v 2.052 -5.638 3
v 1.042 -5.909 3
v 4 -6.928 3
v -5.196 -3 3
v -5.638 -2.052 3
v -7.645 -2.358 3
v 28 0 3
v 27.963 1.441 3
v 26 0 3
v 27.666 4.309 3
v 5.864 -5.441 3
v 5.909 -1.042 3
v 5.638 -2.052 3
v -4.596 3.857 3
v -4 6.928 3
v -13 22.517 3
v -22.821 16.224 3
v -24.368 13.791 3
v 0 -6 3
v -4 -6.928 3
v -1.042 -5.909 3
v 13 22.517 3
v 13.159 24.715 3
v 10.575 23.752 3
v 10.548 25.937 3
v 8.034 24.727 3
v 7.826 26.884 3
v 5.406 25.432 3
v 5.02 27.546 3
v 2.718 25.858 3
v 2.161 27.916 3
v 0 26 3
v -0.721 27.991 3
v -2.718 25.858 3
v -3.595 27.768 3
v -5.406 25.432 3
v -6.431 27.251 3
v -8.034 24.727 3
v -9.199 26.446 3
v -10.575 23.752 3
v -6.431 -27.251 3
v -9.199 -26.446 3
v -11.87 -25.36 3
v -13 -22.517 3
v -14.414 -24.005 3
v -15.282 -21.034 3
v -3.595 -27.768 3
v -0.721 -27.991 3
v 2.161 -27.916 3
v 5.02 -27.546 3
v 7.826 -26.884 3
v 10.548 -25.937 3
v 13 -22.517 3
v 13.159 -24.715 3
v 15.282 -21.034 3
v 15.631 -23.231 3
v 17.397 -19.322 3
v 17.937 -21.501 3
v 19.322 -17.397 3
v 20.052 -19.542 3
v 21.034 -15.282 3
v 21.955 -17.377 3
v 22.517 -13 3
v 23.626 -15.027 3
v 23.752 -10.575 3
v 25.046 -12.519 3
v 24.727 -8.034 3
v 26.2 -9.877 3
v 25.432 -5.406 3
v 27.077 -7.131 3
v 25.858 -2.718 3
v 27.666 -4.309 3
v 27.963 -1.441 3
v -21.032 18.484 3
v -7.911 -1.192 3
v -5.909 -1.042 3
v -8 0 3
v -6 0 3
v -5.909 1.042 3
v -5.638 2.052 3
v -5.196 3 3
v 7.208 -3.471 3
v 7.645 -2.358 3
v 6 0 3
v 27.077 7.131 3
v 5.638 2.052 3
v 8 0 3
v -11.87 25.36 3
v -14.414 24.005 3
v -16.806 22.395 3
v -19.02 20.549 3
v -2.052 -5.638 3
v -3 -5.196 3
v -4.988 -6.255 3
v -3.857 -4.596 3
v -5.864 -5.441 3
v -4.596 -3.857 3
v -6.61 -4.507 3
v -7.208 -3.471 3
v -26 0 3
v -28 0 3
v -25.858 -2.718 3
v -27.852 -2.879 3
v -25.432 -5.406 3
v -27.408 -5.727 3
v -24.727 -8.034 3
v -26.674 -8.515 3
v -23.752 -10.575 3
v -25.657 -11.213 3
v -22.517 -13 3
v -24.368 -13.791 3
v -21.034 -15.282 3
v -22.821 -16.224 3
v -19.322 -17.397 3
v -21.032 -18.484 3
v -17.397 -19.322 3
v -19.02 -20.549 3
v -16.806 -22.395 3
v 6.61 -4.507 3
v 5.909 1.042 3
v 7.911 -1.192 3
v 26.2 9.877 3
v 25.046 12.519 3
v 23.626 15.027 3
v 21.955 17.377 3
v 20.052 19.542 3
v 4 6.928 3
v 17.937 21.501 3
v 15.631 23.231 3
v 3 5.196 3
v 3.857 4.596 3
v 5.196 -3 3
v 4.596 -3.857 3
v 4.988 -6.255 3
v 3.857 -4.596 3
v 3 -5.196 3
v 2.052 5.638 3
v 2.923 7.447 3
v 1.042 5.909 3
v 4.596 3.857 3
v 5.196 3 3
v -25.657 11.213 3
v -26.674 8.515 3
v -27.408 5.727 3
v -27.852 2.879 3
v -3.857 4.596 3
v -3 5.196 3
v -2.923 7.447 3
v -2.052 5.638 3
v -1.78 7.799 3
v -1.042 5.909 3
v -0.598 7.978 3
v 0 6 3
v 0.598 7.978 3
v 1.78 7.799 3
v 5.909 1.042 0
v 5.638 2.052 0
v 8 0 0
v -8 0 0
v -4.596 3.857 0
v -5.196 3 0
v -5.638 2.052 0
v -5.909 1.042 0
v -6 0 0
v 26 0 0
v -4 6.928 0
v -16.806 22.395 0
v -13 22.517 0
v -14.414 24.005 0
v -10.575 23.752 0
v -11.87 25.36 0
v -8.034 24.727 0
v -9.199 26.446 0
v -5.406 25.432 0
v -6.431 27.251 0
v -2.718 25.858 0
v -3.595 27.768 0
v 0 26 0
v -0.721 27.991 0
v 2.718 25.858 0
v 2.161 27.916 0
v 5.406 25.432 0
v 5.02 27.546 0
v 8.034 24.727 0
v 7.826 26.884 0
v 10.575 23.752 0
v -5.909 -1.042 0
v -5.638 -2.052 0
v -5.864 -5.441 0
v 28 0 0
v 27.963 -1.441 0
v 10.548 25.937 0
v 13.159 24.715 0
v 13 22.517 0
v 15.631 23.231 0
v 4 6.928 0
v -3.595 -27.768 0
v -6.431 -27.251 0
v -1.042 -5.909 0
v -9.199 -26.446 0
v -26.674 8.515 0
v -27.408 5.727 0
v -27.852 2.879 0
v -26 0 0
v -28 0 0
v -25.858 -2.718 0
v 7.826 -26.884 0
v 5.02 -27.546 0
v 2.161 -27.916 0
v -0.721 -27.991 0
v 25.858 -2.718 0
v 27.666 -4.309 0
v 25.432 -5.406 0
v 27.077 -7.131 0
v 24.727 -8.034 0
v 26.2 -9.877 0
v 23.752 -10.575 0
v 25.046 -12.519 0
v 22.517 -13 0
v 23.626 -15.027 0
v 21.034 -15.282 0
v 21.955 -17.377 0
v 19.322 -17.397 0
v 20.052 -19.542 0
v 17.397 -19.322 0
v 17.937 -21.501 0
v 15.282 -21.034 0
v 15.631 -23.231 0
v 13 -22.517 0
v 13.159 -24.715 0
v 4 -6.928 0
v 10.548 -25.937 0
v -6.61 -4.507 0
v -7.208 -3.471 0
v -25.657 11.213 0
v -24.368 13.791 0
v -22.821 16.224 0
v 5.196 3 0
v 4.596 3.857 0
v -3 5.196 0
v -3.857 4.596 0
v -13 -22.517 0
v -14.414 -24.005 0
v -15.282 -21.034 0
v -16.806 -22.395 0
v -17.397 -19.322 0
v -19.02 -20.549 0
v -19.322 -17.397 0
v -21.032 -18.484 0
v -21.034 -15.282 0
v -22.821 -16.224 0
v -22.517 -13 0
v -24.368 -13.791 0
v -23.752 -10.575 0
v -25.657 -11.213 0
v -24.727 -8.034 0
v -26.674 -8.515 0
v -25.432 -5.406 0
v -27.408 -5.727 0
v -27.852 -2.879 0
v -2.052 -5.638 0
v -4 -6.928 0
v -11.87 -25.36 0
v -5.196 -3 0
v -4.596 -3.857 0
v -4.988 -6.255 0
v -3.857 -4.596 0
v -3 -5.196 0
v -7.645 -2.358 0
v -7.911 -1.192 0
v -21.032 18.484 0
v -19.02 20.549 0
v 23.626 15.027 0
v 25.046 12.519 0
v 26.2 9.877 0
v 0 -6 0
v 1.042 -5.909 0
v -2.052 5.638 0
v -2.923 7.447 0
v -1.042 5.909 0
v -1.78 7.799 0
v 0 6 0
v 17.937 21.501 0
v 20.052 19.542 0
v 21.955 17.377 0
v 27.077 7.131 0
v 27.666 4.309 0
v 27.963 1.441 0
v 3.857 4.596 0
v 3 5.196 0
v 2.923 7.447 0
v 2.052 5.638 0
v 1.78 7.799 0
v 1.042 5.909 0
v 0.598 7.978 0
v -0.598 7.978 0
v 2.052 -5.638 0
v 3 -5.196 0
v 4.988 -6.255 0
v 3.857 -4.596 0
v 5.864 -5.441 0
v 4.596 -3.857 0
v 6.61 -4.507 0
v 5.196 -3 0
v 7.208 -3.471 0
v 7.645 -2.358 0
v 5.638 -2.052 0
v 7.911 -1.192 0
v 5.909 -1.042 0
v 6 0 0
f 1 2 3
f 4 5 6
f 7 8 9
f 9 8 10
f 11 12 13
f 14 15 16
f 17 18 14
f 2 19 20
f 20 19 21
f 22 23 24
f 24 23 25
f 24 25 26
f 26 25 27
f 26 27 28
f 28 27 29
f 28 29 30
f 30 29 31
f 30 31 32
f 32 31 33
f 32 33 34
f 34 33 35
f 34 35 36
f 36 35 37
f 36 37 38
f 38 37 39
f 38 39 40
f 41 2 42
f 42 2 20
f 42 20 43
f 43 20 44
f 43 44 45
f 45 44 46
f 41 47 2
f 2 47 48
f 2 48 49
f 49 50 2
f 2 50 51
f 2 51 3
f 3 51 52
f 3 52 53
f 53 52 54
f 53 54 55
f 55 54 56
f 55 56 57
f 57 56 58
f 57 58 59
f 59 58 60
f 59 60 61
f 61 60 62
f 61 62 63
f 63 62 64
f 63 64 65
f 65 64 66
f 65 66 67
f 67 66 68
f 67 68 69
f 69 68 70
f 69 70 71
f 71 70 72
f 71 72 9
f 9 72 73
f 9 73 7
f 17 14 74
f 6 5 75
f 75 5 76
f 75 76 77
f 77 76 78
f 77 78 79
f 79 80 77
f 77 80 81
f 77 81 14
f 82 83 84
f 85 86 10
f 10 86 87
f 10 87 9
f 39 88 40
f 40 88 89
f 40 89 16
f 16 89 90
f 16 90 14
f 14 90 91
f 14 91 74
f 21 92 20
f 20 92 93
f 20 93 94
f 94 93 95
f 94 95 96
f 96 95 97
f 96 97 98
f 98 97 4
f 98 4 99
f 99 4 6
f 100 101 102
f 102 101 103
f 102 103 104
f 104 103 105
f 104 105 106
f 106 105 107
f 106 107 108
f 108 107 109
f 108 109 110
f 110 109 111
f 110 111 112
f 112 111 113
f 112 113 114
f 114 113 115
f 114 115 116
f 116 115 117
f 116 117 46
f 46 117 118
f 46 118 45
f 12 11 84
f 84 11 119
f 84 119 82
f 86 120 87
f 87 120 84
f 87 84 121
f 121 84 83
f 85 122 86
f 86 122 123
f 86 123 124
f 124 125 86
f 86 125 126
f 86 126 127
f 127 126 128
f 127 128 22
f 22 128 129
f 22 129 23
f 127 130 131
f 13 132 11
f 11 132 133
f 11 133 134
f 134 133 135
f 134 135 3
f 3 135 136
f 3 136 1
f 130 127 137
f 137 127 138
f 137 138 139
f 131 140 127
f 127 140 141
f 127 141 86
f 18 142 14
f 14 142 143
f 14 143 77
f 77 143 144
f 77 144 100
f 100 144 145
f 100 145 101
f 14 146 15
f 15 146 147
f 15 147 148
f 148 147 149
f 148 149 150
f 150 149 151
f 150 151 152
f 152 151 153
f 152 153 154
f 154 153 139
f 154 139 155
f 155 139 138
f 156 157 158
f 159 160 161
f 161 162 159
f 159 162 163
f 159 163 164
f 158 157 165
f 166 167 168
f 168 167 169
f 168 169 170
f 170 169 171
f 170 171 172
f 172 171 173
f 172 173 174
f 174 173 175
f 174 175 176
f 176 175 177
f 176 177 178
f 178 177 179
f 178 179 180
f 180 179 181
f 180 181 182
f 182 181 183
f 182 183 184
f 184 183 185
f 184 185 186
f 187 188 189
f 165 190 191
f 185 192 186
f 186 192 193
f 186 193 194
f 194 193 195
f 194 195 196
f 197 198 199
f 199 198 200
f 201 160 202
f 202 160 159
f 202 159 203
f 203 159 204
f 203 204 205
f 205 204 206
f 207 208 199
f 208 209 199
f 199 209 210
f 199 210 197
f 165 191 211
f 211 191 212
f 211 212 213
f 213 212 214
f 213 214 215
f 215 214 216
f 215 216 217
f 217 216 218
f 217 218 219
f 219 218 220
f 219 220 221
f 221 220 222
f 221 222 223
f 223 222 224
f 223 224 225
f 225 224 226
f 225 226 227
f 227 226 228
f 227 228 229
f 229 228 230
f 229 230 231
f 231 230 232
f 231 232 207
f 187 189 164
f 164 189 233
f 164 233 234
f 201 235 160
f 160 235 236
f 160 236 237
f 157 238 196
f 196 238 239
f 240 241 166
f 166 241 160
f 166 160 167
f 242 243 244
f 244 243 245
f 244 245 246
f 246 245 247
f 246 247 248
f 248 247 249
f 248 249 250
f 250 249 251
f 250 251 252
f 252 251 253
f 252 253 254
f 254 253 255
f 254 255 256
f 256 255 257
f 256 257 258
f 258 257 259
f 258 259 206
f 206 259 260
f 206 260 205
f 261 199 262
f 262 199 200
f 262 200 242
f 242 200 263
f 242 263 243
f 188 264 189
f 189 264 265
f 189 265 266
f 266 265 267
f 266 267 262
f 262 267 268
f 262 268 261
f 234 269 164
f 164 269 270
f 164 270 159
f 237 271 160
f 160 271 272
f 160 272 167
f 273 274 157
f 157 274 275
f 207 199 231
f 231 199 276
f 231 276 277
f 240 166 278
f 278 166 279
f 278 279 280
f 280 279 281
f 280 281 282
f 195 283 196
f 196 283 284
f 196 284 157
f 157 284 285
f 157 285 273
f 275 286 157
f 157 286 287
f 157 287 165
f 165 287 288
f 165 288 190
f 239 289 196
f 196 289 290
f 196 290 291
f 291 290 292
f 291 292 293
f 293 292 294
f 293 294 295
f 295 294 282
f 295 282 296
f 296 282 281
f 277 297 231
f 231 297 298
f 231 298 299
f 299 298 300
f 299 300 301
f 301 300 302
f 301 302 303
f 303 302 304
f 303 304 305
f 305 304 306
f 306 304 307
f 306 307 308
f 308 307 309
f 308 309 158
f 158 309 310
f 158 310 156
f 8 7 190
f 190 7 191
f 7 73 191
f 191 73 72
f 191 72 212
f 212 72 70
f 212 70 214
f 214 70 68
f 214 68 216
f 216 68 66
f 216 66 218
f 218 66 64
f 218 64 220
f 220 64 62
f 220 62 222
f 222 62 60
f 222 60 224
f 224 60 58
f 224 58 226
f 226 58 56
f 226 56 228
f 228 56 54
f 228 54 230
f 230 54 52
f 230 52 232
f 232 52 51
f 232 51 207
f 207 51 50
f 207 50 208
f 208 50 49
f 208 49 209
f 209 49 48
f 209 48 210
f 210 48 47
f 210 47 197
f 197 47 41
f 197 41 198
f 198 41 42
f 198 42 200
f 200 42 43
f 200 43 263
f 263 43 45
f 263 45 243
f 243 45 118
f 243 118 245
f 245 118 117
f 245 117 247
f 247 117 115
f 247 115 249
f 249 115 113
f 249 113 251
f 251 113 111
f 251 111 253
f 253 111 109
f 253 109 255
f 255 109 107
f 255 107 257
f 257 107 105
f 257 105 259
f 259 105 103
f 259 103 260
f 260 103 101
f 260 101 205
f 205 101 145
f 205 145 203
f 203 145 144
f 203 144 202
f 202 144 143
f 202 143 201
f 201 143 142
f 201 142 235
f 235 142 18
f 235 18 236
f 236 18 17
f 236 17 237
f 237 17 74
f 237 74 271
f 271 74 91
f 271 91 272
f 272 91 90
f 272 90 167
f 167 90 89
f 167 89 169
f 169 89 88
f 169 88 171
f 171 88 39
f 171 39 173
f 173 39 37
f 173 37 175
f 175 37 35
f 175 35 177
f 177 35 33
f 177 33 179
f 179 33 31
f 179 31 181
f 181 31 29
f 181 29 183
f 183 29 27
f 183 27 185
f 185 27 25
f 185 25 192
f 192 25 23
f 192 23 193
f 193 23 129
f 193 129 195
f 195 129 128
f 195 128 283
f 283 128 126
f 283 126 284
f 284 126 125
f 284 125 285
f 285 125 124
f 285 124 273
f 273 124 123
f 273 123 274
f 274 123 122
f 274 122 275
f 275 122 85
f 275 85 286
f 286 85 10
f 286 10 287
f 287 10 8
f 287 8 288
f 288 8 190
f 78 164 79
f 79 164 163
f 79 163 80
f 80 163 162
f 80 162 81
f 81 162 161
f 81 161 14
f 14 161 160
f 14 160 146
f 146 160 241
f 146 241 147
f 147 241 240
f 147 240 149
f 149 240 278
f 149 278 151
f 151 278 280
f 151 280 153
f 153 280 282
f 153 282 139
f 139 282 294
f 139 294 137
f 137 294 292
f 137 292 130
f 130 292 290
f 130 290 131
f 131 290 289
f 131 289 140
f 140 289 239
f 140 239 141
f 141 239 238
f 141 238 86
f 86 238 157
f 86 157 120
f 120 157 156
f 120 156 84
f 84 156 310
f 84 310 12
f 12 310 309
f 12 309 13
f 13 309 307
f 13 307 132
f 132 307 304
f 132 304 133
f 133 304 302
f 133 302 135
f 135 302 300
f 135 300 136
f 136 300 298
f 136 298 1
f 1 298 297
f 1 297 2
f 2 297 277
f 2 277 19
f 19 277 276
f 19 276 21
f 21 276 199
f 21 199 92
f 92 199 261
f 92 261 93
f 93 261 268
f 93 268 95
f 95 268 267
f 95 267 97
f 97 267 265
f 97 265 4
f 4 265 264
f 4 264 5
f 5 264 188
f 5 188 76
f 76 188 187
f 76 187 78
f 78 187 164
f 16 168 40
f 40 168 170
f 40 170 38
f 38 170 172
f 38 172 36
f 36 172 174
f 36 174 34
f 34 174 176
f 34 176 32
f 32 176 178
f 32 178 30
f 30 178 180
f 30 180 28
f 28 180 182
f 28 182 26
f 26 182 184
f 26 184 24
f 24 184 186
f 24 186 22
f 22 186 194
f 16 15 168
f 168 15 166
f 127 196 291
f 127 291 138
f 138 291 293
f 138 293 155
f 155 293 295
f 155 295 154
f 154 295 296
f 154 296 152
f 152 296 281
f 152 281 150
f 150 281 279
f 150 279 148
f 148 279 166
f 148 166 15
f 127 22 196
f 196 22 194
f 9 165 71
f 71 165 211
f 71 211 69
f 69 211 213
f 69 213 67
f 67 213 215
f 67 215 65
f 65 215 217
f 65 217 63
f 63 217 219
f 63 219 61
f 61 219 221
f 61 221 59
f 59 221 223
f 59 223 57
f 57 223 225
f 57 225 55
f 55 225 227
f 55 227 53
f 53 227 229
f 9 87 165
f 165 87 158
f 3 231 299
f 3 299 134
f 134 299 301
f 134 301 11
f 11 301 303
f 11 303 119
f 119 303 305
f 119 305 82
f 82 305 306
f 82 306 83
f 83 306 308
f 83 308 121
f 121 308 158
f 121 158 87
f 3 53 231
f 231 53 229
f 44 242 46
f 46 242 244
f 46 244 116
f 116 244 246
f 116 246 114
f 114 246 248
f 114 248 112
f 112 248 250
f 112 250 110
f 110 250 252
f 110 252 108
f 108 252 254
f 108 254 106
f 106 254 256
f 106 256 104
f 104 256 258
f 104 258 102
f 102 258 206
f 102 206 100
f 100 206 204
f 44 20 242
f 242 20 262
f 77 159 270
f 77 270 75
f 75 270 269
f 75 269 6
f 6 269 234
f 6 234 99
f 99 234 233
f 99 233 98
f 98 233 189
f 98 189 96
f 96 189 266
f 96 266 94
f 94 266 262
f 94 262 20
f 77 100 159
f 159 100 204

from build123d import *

# Parameters (mm, degrees)
SKETCH_1_R      = 28
SKETCH_1_R_2    = 6
EXTRUDE_1_DEPTH = 3


with BuildPart() as part:
    # 草图1 → 凸台-拉伸1 (new body)
    with BuildSketch(Plane.XY):
        Circle(SKETCH_1_R)
        Circle(SKETCH_1_R_2, mode=Mode.SUBTRACT)
        with BuildLine():
            Line((-13, 22.516660498), (-4, 6.92820323))
            ThreePointArc((-4, 6.92820323), (0, 8), (4, 6.92820323))
            Line((4, 6.92820323), (13, 22.516660498))
            ThreePointArc((13, 22.516660498), (0, 26), (-13, 22.516660498))
        make_face(mode=Mode.SUBTRACT)
        with BuildLine():
            Line((-13, -22.516660498), (-4, -6.92820323))
            ThreePointArc((-4, -6.92820323), (-6.92820323, -4), (-8, 0))
            Line((-8, 0), (-26, 0))
            ThreePointArc((-26, 0), (-22.516660498, -13), (-13, -22.516660498))
        make_face(mode=Mode.SUBTRACT)
        with BuildLine():
            Line((13, -22.516660498), (4, -6.92820323))
            ThreePointArc((4, -6.92820323), (6.92820323, -4), (8, 0))
            Line((8, 0), (26, 0))
            ThreePointArc((26, 0), (22.516660498, -13), (13, -22.516660498))
        make_face(mode=Mode.SUBTRACT)
    extrude(amount=EXTRUDE_1_DEPTH)


solid = part.part
